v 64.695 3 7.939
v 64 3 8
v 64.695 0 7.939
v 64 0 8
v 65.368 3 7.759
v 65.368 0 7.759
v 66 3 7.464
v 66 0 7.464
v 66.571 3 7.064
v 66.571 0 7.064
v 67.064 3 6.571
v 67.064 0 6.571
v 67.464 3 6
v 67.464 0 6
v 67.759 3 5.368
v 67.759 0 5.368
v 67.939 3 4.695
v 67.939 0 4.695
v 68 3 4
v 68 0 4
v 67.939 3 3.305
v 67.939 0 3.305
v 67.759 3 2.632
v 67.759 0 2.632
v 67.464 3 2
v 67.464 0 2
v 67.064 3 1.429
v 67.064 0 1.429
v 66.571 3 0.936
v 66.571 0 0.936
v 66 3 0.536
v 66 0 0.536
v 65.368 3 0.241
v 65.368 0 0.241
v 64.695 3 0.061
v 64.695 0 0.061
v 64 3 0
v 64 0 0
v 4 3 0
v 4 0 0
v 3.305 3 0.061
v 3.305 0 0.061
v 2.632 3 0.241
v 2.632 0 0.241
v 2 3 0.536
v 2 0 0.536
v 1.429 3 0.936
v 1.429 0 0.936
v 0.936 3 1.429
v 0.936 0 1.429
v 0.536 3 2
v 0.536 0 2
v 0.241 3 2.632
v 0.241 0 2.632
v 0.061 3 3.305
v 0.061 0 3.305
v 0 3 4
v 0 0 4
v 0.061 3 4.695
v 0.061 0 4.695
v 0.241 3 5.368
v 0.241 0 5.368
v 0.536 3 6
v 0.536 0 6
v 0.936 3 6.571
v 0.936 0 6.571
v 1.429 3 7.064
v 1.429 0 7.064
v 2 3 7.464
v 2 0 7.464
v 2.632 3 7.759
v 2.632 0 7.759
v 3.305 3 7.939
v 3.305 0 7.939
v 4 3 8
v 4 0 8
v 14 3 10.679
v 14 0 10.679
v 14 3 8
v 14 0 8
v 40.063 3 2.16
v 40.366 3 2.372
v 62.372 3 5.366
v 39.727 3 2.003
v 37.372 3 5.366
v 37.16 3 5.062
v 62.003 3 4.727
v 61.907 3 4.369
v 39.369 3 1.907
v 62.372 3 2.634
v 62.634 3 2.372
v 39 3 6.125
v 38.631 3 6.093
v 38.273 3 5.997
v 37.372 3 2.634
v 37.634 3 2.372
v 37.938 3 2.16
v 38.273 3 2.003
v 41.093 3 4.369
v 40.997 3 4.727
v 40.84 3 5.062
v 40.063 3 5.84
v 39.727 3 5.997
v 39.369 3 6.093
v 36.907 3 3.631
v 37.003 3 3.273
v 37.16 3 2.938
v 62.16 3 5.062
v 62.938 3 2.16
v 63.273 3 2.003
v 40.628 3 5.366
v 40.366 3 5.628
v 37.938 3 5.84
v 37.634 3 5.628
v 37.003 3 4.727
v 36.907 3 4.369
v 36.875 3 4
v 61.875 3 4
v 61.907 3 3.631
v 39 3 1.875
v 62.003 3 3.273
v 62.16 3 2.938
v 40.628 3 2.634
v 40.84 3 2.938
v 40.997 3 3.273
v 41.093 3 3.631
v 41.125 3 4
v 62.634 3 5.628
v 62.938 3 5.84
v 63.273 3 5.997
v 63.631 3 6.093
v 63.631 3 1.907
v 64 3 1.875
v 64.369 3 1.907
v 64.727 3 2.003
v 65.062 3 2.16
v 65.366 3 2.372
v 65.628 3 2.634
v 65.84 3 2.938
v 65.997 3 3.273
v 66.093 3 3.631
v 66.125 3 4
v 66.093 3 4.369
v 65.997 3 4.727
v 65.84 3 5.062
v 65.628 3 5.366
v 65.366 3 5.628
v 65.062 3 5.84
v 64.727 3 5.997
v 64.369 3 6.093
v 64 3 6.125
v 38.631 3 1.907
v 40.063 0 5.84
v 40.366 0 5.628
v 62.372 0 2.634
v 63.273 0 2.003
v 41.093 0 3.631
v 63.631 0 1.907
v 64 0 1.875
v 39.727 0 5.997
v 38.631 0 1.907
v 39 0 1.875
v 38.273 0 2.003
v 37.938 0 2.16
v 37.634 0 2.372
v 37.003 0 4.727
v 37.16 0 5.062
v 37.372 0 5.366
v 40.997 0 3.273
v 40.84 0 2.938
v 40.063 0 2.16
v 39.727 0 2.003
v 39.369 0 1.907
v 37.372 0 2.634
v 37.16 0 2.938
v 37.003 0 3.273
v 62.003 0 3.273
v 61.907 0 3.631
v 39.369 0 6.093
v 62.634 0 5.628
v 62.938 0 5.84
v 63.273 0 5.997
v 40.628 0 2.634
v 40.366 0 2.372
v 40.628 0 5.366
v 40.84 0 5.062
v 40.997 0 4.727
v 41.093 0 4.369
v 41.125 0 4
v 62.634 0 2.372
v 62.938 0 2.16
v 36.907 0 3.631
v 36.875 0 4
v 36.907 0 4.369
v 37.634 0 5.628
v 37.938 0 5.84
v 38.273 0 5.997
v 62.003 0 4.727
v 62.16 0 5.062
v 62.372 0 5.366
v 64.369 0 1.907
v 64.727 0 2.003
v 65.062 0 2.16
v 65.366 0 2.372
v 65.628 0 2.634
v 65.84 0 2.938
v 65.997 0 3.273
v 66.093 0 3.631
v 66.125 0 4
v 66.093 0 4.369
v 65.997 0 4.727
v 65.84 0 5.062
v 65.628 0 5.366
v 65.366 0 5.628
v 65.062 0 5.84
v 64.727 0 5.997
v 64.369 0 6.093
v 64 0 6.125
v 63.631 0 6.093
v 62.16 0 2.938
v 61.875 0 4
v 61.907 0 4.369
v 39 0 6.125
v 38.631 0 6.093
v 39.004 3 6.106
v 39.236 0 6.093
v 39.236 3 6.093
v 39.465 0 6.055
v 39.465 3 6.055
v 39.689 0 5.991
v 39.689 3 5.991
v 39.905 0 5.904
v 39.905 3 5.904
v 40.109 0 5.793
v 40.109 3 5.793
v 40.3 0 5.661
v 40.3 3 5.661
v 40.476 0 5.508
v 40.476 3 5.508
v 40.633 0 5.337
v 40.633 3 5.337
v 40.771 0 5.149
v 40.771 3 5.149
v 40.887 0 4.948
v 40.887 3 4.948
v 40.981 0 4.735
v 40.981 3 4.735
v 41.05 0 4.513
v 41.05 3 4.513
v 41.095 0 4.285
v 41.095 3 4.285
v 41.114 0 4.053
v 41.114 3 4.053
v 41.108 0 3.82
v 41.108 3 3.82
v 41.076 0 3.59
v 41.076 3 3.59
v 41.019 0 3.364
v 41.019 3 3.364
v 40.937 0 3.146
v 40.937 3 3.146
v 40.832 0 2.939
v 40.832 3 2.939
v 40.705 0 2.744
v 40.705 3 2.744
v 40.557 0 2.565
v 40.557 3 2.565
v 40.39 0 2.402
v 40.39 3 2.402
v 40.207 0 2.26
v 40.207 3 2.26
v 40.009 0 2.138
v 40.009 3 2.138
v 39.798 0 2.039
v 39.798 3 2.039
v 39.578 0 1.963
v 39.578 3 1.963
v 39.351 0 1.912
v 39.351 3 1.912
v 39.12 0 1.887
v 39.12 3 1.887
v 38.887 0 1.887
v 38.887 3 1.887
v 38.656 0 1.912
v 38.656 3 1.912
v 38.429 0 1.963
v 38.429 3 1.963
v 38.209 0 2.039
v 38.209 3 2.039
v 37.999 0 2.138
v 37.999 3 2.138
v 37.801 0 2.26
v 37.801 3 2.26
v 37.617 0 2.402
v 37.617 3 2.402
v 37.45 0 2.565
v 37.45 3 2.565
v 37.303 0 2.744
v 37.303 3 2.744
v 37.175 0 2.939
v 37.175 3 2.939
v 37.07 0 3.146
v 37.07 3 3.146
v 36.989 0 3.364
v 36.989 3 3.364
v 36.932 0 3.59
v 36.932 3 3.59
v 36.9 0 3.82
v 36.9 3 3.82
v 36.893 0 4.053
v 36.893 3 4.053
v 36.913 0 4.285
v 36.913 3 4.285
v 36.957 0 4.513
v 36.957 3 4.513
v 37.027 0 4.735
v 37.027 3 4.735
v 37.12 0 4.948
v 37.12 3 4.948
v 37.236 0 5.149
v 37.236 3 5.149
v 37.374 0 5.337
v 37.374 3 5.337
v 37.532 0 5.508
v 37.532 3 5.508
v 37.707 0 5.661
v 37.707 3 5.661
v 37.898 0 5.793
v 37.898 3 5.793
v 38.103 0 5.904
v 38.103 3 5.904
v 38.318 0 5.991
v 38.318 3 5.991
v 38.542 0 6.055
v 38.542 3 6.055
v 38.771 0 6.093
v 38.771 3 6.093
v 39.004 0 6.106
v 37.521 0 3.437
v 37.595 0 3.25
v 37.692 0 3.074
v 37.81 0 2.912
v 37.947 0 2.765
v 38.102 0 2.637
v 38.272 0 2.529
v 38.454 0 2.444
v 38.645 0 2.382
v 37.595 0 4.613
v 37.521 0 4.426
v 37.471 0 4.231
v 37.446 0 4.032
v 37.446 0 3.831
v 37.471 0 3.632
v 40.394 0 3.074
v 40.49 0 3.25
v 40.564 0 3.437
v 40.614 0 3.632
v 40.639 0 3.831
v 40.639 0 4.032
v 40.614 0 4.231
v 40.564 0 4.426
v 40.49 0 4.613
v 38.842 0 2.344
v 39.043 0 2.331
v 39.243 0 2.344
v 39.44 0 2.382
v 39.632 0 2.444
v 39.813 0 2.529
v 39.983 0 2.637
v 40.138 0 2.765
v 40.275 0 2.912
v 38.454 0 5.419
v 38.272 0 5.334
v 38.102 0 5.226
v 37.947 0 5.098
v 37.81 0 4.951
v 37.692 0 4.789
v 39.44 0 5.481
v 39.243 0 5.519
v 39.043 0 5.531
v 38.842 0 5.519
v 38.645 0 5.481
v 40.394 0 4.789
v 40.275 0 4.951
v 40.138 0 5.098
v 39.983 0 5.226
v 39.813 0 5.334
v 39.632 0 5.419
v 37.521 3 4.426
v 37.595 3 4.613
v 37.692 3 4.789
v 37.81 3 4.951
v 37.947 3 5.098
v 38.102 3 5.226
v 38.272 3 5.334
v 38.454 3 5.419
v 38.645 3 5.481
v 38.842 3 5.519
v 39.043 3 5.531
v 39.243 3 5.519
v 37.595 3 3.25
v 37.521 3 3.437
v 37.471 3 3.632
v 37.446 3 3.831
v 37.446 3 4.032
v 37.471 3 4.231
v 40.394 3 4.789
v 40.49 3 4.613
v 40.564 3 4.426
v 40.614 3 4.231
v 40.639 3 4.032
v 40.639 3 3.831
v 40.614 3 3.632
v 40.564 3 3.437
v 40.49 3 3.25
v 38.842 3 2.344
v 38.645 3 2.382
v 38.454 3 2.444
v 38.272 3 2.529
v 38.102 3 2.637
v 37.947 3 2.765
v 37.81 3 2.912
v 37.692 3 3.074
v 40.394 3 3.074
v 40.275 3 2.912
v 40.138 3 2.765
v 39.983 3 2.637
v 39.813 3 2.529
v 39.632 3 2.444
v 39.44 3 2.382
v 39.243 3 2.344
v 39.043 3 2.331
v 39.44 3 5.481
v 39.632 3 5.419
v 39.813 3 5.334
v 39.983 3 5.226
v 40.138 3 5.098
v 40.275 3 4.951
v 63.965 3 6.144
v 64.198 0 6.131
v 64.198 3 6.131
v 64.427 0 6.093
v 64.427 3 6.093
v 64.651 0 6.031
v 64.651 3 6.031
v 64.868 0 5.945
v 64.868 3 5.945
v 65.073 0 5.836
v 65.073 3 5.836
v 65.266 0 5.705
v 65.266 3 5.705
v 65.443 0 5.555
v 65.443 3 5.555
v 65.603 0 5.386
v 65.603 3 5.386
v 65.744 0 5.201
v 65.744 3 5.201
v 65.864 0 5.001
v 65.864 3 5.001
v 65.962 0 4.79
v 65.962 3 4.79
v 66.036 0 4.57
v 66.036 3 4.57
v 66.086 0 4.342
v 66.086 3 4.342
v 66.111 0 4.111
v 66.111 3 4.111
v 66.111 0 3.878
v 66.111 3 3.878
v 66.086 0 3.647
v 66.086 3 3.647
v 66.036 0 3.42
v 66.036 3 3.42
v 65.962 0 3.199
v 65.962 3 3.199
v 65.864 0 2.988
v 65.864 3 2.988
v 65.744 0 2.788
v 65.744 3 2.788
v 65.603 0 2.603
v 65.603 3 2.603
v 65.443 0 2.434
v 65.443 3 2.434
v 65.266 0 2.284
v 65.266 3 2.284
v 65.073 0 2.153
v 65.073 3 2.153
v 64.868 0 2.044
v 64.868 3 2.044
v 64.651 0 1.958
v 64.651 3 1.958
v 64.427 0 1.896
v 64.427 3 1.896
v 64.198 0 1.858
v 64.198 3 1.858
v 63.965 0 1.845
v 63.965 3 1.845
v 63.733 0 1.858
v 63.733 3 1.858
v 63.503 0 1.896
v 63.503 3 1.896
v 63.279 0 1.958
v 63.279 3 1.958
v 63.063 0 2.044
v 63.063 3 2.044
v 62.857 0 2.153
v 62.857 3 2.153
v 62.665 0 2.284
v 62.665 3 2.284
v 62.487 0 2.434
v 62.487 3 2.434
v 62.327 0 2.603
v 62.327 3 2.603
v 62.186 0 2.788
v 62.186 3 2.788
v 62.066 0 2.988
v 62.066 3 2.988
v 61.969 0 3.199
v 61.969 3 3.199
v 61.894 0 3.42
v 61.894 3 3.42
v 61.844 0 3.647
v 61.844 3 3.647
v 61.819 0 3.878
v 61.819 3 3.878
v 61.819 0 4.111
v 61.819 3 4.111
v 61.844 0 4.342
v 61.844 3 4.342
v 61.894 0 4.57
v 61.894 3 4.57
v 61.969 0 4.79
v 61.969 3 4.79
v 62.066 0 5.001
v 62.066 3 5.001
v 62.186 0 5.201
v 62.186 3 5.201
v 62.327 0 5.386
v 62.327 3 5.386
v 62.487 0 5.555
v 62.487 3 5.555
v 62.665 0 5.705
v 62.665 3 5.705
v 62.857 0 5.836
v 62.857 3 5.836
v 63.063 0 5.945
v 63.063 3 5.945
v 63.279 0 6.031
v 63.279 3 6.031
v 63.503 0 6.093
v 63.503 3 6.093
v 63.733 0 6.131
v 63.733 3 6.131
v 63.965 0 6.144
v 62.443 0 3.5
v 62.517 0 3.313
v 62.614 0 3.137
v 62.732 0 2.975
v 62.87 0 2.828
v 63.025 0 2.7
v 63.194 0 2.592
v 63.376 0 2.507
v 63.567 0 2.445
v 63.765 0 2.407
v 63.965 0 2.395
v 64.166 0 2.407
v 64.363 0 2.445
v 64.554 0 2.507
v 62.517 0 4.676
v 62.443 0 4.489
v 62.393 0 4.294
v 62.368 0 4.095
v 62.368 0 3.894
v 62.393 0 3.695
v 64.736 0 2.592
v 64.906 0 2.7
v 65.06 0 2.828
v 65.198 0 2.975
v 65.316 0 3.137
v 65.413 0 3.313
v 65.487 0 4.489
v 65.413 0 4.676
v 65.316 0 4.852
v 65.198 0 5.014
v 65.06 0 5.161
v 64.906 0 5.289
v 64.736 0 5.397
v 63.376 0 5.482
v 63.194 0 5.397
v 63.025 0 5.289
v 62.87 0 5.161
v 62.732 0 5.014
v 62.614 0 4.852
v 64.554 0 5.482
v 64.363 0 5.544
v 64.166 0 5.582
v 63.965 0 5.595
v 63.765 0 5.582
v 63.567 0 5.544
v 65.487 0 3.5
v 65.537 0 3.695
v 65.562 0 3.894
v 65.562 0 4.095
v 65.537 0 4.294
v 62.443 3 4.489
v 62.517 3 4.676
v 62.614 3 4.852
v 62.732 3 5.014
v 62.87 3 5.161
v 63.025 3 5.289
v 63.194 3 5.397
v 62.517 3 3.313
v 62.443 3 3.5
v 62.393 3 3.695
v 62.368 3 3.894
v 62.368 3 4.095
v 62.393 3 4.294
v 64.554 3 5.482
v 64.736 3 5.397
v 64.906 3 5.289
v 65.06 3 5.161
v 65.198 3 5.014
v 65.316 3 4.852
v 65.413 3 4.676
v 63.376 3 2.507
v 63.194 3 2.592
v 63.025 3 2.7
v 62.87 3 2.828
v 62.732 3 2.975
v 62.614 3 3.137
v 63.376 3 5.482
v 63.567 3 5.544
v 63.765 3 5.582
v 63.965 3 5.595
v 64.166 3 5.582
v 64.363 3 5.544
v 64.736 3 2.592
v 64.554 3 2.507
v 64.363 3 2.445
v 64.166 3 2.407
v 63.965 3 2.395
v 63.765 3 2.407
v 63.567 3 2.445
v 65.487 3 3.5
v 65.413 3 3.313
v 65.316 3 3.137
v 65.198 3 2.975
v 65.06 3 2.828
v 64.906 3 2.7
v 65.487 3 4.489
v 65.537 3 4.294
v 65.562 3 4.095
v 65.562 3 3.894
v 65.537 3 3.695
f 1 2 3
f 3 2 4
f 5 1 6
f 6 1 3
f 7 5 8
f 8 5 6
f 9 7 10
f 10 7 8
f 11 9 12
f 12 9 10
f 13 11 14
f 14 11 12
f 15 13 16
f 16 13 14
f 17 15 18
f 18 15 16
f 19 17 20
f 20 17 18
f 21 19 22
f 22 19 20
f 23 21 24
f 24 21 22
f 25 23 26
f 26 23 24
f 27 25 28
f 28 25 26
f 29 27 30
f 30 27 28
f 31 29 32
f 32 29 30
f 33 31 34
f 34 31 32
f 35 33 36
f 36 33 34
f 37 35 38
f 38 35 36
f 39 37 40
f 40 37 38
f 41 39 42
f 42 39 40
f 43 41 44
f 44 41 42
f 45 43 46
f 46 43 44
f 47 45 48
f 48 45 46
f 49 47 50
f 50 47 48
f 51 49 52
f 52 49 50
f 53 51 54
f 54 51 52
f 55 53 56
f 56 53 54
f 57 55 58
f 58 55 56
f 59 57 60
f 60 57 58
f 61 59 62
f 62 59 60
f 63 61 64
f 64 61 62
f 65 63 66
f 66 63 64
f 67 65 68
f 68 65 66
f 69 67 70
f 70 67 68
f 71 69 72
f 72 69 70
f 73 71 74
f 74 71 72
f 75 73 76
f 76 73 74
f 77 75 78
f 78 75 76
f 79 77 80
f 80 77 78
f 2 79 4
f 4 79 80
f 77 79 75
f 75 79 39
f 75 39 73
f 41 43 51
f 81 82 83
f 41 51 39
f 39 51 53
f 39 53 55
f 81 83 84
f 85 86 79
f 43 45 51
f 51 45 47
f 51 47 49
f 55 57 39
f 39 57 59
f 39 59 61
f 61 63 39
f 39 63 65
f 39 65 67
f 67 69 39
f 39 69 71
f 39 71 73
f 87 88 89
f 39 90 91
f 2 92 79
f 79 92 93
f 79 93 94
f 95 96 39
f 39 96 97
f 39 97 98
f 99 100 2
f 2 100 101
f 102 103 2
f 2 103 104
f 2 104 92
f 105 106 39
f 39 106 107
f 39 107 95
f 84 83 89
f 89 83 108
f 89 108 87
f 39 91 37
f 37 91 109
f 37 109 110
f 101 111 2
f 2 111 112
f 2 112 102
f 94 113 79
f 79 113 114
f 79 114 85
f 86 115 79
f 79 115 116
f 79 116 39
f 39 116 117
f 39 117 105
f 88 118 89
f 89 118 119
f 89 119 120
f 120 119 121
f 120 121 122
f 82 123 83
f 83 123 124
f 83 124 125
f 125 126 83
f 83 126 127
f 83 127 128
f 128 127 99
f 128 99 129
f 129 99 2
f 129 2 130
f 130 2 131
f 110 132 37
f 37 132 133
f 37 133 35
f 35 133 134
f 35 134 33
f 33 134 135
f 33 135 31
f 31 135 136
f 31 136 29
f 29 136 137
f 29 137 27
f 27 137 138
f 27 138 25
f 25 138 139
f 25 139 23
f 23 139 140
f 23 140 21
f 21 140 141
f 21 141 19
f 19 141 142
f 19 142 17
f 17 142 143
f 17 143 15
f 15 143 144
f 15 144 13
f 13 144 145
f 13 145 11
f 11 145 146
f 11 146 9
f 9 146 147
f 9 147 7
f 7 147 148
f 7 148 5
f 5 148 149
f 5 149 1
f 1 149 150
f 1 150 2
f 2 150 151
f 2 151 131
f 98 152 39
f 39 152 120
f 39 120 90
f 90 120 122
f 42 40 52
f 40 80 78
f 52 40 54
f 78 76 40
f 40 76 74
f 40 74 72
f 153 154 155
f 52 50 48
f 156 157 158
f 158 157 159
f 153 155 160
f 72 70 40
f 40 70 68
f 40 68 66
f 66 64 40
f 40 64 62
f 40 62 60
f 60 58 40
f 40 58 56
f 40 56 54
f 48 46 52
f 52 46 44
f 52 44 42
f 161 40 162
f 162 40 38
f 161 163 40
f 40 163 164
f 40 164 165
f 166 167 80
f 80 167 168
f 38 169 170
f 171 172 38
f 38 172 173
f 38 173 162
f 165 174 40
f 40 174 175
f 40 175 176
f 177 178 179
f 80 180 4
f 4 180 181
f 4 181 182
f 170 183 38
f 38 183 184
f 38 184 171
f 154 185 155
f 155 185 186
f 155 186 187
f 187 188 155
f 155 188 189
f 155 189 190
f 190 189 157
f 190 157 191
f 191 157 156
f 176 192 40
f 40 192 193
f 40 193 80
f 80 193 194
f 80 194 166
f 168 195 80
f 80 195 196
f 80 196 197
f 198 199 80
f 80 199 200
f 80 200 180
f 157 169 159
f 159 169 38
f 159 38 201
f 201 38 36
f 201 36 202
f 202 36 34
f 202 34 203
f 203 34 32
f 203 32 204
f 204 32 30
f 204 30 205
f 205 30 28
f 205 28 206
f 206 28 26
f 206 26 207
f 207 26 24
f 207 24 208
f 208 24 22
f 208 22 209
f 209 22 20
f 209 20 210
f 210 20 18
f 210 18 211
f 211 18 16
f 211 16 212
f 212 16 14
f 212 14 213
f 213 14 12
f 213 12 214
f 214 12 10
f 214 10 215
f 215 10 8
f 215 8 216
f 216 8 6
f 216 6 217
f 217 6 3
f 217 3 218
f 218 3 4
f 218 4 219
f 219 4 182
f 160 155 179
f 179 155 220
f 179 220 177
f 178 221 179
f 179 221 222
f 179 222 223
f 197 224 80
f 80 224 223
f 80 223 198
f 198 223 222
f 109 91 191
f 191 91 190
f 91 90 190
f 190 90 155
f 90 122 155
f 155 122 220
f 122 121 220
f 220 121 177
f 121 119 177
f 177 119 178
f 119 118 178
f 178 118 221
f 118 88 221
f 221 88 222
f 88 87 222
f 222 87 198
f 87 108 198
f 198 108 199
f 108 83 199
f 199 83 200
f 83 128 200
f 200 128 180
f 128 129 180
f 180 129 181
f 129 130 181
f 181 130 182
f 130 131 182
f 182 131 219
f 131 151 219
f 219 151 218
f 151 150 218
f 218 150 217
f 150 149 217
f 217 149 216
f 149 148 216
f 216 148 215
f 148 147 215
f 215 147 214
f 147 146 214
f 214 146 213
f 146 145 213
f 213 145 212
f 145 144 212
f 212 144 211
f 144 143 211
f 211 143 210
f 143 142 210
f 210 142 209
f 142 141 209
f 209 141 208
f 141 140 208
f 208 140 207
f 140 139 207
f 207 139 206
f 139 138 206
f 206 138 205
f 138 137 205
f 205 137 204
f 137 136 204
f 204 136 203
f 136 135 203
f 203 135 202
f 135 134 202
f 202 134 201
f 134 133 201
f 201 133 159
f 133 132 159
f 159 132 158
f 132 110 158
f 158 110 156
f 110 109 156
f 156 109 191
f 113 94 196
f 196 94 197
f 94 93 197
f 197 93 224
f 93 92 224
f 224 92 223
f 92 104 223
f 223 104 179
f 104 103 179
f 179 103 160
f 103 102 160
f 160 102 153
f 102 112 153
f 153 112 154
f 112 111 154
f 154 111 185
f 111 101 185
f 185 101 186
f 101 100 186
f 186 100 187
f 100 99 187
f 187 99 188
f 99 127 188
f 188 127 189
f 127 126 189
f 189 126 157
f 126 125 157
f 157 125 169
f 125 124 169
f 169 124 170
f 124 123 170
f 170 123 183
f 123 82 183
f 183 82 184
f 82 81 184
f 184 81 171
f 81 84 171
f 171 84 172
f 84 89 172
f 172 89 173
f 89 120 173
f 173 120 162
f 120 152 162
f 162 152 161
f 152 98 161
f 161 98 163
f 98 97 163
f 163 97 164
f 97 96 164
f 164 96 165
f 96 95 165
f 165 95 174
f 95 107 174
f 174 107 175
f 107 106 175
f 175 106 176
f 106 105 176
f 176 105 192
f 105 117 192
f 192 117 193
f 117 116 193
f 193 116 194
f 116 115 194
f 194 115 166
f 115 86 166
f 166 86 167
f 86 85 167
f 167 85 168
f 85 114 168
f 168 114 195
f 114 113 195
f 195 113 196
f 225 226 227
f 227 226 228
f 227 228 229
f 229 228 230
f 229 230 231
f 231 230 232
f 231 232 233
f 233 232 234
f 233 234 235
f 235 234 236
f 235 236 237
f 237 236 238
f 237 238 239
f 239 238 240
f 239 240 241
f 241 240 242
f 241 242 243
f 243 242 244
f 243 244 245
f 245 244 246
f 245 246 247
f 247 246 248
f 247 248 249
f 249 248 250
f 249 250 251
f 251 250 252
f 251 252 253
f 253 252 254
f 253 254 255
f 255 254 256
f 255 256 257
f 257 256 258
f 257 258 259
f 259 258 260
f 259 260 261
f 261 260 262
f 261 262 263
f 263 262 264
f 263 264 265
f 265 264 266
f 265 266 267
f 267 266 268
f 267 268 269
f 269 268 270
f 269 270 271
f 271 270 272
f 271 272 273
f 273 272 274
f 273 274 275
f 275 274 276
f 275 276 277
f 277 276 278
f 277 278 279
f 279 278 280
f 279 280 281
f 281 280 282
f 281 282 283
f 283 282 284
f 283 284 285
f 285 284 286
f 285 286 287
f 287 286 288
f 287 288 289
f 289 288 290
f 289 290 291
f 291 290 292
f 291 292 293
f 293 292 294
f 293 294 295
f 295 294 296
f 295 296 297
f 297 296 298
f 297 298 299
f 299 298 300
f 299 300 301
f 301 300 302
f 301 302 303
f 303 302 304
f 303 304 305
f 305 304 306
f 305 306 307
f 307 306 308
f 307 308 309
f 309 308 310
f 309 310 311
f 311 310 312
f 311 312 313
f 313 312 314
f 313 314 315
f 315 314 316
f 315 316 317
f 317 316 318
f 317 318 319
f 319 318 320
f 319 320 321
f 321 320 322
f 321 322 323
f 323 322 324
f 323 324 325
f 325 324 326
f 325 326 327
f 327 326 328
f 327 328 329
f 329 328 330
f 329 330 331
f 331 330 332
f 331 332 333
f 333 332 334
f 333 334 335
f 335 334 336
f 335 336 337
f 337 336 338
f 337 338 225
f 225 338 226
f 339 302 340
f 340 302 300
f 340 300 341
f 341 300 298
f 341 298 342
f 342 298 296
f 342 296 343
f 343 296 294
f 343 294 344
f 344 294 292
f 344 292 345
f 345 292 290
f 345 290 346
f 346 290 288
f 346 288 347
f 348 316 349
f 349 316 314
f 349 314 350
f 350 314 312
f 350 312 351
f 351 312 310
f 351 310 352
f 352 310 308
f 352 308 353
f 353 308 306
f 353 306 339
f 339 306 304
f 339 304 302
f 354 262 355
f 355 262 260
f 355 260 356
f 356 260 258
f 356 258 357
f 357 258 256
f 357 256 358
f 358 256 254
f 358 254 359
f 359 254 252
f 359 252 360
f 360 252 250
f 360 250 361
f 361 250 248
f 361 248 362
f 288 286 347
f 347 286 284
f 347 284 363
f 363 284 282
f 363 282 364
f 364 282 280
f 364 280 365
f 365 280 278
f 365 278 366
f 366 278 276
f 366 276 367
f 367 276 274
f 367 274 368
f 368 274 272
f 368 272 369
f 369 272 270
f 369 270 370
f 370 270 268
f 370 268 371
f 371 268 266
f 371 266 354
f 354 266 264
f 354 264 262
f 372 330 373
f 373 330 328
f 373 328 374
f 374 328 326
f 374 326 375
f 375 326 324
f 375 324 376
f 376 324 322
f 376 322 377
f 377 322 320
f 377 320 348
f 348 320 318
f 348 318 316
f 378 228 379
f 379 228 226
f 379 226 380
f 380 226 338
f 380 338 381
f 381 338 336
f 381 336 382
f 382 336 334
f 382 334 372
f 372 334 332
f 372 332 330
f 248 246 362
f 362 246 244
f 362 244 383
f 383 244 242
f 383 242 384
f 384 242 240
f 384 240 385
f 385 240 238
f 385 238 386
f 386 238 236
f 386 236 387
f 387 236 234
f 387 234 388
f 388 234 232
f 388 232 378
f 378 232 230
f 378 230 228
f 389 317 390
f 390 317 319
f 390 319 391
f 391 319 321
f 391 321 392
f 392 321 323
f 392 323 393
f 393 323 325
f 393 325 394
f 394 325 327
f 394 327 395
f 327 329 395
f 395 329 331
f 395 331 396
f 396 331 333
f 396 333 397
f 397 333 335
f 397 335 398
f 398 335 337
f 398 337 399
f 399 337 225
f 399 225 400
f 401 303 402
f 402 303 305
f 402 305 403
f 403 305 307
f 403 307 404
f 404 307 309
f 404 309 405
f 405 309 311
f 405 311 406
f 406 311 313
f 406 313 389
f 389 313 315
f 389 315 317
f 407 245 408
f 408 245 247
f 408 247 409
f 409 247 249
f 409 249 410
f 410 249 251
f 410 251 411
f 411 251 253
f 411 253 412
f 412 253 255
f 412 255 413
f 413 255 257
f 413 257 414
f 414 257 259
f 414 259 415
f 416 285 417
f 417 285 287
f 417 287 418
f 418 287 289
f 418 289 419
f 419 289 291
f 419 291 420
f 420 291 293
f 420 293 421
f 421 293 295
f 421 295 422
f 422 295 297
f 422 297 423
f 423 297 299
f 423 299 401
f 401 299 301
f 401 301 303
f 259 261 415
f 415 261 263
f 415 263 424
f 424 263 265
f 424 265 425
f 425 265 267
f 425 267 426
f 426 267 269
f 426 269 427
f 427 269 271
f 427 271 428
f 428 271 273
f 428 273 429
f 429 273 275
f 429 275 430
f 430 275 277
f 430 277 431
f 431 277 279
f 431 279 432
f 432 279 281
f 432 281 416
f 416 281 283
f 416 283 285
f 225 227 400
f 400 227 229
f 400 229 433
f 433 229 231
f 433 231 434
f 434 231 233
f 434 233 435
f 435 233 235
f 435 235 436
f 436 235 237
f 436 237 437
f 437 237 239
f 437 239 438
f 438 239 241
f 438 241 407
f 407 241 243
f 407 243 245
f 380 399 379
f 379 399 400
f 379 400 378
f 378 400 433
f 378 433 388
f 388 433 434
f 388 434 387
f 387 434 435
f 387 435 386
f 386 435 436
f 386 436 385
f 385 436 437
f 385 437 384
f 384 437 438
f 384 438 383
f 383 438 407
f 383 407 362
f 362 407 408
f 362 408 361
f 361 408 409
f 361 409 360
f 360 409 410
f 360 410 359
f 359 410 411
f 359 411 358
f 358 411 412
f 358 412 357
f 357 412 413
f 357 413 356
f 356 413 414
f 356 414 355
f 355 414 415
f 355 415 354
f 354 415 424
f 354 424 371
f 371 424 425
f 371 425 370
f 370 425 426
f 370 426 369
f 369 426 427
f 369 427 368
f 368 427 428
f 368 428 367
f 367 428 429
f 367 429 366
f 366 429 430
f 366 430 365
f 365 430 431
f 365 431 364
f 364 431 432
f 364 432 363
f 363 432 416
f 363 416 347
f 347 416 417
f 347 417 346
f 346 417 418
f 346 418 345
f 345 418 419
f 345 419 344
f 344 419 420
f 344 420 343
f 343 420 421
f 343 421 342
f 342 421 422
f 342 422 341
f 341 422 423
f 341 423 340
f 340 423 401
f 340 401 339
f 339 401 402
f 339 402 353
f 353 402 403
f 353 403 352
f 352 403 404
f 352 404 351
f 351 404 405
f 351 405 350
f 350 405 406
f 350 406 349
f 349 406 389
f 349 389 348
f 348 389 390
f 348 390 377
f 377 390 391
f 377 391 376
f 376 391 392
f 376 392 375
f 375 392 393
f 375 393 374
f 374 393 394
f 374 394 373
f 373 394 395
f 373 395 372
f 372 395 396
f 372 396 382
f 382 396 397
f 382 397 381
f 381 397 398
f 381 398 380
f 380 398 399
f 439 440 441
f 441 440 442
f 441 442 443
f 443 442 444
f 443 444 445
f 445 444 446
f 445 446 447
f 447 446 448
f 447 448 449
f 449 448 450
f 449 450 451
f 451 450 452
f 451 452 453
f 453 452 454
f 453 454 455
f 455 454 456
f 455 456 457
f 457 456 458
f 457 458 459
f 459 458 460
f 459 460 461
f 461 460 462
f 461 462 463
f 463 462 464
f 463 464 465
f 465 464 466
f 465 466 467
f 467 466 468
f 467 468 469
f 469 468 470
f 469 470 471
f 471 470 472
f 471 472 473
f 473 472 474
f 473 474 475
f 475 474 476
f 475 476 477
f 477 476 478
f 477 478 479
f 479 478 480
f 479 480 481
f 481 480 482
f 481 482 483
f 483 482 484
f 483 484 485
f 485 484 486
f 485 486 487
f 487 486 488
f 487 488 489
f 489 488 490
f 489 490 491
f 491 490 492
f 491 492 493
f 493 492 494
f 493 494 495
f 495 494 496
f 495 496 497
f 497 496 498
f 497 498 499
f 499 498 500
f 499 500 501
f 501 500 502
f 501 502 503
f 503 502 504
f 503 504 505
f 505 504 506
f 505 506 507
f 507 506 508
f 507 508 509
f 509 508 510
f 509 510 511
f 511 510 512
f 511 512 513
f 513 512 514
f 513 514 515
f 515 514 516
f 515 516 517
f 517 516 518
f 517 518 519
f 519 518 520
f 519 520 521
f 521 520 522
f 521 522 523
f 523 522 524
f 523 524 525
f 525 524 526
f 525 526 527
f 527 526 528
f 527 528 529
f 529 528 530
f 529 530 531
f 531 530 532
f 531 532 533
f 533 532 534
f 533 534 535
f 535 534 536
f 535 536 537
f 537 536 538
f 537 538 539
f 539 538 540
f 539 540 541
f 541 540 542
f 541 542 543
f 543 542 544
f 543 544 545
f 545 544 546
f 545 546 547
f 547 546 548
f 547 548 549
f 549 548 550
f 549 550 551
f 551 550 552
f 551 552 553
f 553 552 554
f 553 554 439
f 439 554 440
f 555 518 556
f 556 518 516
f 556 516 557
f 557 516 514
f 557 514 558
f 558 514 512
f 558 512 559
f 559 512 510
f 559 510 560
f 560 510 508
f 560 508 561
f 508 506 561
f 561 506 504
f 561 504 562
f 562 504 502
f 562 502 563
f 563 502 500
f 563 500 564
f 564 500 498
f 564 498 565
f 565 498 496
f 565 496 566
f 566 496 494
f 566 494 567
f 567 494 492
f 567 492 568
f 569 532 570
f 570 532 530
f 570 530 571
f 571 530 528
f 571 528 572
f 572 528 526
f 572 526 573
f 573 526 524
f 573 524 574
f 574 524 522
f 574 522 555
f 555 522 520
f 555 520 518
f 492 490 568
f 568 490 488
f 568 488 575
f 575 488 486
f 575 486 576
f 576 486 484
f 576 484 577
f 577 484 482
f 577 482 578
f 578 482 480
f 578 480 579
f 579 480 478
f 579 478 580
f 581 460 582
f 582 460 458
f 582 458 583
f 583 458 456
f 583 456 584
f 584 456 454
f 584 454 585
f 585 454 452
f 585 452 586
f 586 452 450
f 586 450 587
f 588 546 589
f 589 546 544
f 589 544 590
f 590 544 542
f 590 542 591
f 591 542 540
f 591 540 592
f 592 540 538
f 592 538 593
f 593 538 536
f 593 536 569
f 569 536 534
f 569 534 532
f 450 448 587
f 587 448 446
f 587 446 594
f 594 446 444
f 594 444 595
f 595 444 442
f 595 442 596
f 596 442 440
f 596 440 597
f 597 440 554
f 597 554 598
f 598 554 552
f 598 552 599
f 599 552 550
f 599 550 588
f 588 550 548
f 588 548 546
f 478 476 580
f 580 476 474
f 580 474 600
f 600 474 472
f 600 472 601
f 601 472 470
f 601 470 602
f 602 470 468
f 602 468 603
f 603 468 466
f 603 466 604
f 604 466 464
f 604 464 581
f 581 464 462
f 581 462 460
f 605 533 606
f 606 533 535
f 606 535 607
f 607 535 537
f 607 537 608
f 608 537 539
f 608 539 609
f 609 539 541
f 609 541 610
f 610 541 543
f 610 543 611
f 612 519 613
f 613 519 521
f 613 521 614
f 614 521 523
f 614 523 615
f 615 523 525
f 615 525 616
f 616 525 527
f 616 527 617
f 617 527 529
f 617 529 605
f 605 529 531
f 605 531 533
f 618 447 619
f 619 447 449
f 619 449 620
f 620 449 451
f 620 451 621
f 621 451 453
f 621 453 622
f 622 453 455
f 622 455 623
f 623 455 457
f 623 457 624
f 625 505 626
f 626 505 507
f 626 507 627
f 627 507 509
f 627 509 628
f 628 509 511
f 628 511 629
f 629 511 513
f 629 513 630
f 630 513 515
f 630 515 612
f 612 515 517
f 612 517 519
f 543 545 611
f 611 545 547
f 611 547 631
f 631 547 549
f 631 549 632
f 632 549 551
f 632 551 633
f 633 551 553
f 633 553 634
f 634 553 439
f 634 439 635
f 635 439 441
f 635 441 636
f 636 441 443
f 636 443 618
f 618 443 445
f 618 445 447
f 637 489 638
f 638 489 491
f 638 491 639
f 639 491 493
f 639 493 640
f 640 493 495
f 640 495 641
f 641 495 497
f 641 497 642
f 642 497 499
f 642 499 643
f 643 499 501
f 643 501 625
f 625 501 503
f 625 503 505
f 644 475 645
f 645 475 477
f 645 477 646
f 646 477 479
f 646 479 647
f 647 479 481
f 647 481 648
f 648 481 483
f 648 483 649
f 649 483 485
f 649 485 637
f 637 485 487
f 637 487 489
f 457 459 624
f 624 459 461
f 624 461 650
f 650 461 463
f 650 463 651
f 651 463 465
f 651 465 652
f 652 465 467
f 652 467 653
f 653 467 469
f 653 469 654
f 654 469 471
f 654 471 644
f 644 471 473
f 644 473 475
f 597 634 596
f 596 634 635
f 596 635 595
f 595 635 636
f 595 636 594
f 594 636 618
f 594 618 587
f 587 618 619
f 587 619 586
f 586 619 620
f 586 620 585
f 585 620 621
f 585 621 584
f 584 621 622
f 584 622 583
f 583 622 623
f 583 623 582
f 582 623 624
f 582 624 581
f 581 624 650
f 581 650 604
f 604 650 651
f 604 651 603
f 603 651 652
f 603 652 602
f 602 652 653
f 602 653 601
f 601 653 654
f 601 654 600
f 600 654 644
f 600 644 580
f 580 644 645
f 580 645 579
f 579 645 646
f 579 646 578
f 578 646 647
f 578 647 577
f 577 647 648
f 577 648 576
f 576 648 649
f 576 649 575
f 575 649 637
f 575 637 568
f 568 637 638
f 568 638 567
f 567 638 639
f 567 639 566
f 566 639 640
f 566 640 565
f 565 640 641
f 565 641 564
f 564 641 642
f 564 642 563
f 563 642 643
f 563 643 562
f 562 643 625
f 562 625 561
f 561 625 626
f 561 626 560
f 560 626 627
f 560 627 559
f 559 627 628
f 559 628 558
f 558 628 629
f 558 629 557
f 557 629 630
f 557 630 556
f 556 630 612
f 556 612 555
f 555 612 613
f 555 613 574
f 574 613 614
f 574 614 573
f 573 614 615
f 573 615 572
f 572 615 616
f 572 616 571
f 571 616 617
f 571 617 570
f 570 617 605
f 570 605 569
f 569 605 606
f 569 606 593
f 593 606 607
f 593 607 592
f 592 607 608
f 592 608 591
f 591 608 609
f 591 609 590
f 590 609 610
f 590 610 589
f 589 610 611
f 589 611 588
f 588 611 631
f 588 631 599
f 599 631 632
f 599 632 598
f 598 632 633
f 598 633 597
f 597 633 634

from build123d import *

# Parameters (mm, degrees)
BOSS_EXTRUDE1_DEPTH           = 3.000000026
SKETCH2_R                     = 2.11121725
BOSS_EXTRUDE2_DEPTH           = 3
SKETCH2_R_2                   = 2.149164951
BOSS_EXTRUDE2_2_DEPTH         = 3
SKETCH4_W                     = 1.6
SKETCH4_H                     = 3.000000026
M3_CLEARANCE_HOLE1_AT_2_COUNT = 2
M3_CLEARANCE_HOLE1_AT_2_PITCH = 24.92264996


with BuildPart() as part:
    # Sketch1 → Boss-Extrude1 (new body)
    with BuildSketch(Plane.XZ):
        Polygon((64.00000304, 8.00000038), (14.000002295, 8.00000038), (14.000002295, 10.679492727), (4.000002518, 8.00000038), (3.305409104, 7.939230651), (2.631921321, 7.758770604), (2.000000328, 7.464101538), (1.428849879, 7.064177655), (0.935822725, 6.571150385), (0.535901694, 6.000000052), (0.241231173, 5.368080921), (0.060770661, 4.694593139), (0, 4.00000019), (0.060770661, 3.305407474), (0.241231173, 2.631919459), (0.535901694, 2.000000095), (0.935822725, 1.428849762), (1.428849879, 0.935822492), (2.000000328, 0.535898609), (2.631921321, 0.241229776), (3.305409104, 0.060769264), (4.000002518, 0), (64.00000304, 0), (64.694598317, 0.060769264), (65.3680861, 0.241229776), (65.999999642, 0.535898609), (66.5711537, 0.935822492), (67.06418097, 1.428849762), (67.464098334, 2.000000095), (67.758768797, 2.631919459), (67.93923676, 3.305407474), (68.000003695, 4.00000019), (67.93923676, 4.694593139), (67.758768797, 5.368080921), (67.464098334, 6.000000052), (67.06418097, 6.571150385), (66.5711537, 7.064177655), (65.999999642, 7.464101538), (65.3680861, 7.758770604), (64.694598317, 7.939230651), align=None)
        Polygon((62.634080648, 2.372155897), (62.372155488, 2.634076402), (62.159698457, 2.937500132), (62.003154308, 3.273207461), (61.907283962, 3.630997846), (61.875000596, 4.00000019), (61.907283962, 4.369002767), (62.003154308, 4.726793151), (62.159698457, 5.062500015), (62.372155488, 5.365923978), (62.634080648, 5.627844483), (62.937498093, 5.840304308), (63.273206353, 5.99684706), (63.630998135, 6.09271694), (64.00000304, 6.125000305), (64.369007945, 6.09271694), (64.726792276, 5.99684706), (65.062500536, 5.840304308), (65.365925431, 5.627844483), (65.627843142, 5.365923978), (65.840303898, 5.062500015), (65.996848047, 4.726793151), (66.092714667, 4.369002767), (66.125005484, 4.00000019), (66.092714667, 3.630997846), (65.996848047, 3.273207461), (65.840303898, 2.937500132), (65.627843142, 2.634076402), (65.365925431, 2.372155897), (65.062500536, 2.159696072), (64.726792276, 2.00315332), (64.369007945, 1.907283673), (64.00000304, 1.875000075), (63.630998135, 1.907283673), (63.273206353, 2.00315332), (62.937498093, 2.159696072), align=None, mode=Mode.SUBTRACT)
        Polygon((38.273207843, 5.99684706), (38.630999625, 6.09271694), (39.000000805, 6.125000305), (39.36900571, 6.09271694), (39.726793766, 5.99684706), (40.062502027, 5.840304308), (40.365926921, 5.627844483), (40.627844632, 5.365923978), (40.840305388, 5.062500015), (40.996849537, 4.726793151), (41.092719883, 4.369002767), (41.125003248, 4.00000019), (41.092719883, 3.630997846), (40.996849537, 3.273207461), (40.840305388, 2.937500132), (40.627844632, 2.634076402), (40.365926921, 2.372155897), (40.062502027, 2.159696072), (39.726793766, 2.00315332), (39.36900571, 1.907283673), (39.000000805, 1.875000075), (38.630999625, 1.907283673), (38.273207843, 2.00315332), (37.937503308, 2.159696072), (37.634078413, 2.372155897), (37.372156978, 2.634076402), (37.159696221, 2.937500132), (37.003155798, 3.273207461), (36.907285452, 3.630997846), (36.875002086, 4.00000019), (36.907285452, 4.369002767), (37.003155798, 4.726793151), (37.159696221, 5.062500015), (37.372156978, 5.365923978), (37.634078413, 5.627844483), (37.937503308, 5.840304308), align=None, mode=Mode.SUBTRACT)
    extrude(amount=-BOSS_EXTRUDE1_DEPTH)


with BuildPart() as body_2:
    # Sketch2 → Boss-Extrude2 (new body)
    with BuildSketch(Plane(origin=(0, 3.000000026, 0), x_dir=(1, 0, 0), z_dir=(0, 1, 0))):
        with Locations((39.003749175, -3.994556906)):
            Circle(SKETCH2_R)
    extrude(amount=-BOSS_EXTRUDE2_DEPTH)

    # Sketch4 → M3 Clearance Hole1 (revolve, cut)
    with BuildSketch(Plane(origin=(39.042582184, 3.000000026, 3.931498861), x_dir=(0, 0, 1), z_dir=(1, 0, 0))):
        with Locations((0.8, 1.500000013)):
            Rectangle(SKETCH4_W, SKETCH4_H)
    m3_clearance_hole1 = revolve(axis=Axis((39.042582184, 9.350000026, 3.931498861), (0, -1, 0)), mode=Mode.SUBTRACT)


with BuildPart() as body_3:
    # Sketch2 → Boss-Extrude2 2 (new body)
    with BuildSketch(Plane(origin=(0, 3.000000026, 0), x_dir=(1, 0, 0), z_dir=(0, 1, 0))):
        with Locations((63.965152371, -3.994556906)):
            Circle(SKETCH2_R_2)
    extrude(amount=-BOSS_EXTRUDE2_2_DEPTH)

    # M3 Clearance Hole1 at 2: M3 Clearance Hole1 ×2
    with Locations(*[Vector(0.999996799, 0, 0.00253015) * (i * M3_CLEARANCE_HOLE1_AT_2_PITCH) for i in range(1, M3_CLEARANCE_HOLE1_AT_2_COUNT)]):
        add(m3_clearance_hole1, mode=Mode.SUBTRACT)


solid = Compound([part.part, body_2.part, body_3.part])
